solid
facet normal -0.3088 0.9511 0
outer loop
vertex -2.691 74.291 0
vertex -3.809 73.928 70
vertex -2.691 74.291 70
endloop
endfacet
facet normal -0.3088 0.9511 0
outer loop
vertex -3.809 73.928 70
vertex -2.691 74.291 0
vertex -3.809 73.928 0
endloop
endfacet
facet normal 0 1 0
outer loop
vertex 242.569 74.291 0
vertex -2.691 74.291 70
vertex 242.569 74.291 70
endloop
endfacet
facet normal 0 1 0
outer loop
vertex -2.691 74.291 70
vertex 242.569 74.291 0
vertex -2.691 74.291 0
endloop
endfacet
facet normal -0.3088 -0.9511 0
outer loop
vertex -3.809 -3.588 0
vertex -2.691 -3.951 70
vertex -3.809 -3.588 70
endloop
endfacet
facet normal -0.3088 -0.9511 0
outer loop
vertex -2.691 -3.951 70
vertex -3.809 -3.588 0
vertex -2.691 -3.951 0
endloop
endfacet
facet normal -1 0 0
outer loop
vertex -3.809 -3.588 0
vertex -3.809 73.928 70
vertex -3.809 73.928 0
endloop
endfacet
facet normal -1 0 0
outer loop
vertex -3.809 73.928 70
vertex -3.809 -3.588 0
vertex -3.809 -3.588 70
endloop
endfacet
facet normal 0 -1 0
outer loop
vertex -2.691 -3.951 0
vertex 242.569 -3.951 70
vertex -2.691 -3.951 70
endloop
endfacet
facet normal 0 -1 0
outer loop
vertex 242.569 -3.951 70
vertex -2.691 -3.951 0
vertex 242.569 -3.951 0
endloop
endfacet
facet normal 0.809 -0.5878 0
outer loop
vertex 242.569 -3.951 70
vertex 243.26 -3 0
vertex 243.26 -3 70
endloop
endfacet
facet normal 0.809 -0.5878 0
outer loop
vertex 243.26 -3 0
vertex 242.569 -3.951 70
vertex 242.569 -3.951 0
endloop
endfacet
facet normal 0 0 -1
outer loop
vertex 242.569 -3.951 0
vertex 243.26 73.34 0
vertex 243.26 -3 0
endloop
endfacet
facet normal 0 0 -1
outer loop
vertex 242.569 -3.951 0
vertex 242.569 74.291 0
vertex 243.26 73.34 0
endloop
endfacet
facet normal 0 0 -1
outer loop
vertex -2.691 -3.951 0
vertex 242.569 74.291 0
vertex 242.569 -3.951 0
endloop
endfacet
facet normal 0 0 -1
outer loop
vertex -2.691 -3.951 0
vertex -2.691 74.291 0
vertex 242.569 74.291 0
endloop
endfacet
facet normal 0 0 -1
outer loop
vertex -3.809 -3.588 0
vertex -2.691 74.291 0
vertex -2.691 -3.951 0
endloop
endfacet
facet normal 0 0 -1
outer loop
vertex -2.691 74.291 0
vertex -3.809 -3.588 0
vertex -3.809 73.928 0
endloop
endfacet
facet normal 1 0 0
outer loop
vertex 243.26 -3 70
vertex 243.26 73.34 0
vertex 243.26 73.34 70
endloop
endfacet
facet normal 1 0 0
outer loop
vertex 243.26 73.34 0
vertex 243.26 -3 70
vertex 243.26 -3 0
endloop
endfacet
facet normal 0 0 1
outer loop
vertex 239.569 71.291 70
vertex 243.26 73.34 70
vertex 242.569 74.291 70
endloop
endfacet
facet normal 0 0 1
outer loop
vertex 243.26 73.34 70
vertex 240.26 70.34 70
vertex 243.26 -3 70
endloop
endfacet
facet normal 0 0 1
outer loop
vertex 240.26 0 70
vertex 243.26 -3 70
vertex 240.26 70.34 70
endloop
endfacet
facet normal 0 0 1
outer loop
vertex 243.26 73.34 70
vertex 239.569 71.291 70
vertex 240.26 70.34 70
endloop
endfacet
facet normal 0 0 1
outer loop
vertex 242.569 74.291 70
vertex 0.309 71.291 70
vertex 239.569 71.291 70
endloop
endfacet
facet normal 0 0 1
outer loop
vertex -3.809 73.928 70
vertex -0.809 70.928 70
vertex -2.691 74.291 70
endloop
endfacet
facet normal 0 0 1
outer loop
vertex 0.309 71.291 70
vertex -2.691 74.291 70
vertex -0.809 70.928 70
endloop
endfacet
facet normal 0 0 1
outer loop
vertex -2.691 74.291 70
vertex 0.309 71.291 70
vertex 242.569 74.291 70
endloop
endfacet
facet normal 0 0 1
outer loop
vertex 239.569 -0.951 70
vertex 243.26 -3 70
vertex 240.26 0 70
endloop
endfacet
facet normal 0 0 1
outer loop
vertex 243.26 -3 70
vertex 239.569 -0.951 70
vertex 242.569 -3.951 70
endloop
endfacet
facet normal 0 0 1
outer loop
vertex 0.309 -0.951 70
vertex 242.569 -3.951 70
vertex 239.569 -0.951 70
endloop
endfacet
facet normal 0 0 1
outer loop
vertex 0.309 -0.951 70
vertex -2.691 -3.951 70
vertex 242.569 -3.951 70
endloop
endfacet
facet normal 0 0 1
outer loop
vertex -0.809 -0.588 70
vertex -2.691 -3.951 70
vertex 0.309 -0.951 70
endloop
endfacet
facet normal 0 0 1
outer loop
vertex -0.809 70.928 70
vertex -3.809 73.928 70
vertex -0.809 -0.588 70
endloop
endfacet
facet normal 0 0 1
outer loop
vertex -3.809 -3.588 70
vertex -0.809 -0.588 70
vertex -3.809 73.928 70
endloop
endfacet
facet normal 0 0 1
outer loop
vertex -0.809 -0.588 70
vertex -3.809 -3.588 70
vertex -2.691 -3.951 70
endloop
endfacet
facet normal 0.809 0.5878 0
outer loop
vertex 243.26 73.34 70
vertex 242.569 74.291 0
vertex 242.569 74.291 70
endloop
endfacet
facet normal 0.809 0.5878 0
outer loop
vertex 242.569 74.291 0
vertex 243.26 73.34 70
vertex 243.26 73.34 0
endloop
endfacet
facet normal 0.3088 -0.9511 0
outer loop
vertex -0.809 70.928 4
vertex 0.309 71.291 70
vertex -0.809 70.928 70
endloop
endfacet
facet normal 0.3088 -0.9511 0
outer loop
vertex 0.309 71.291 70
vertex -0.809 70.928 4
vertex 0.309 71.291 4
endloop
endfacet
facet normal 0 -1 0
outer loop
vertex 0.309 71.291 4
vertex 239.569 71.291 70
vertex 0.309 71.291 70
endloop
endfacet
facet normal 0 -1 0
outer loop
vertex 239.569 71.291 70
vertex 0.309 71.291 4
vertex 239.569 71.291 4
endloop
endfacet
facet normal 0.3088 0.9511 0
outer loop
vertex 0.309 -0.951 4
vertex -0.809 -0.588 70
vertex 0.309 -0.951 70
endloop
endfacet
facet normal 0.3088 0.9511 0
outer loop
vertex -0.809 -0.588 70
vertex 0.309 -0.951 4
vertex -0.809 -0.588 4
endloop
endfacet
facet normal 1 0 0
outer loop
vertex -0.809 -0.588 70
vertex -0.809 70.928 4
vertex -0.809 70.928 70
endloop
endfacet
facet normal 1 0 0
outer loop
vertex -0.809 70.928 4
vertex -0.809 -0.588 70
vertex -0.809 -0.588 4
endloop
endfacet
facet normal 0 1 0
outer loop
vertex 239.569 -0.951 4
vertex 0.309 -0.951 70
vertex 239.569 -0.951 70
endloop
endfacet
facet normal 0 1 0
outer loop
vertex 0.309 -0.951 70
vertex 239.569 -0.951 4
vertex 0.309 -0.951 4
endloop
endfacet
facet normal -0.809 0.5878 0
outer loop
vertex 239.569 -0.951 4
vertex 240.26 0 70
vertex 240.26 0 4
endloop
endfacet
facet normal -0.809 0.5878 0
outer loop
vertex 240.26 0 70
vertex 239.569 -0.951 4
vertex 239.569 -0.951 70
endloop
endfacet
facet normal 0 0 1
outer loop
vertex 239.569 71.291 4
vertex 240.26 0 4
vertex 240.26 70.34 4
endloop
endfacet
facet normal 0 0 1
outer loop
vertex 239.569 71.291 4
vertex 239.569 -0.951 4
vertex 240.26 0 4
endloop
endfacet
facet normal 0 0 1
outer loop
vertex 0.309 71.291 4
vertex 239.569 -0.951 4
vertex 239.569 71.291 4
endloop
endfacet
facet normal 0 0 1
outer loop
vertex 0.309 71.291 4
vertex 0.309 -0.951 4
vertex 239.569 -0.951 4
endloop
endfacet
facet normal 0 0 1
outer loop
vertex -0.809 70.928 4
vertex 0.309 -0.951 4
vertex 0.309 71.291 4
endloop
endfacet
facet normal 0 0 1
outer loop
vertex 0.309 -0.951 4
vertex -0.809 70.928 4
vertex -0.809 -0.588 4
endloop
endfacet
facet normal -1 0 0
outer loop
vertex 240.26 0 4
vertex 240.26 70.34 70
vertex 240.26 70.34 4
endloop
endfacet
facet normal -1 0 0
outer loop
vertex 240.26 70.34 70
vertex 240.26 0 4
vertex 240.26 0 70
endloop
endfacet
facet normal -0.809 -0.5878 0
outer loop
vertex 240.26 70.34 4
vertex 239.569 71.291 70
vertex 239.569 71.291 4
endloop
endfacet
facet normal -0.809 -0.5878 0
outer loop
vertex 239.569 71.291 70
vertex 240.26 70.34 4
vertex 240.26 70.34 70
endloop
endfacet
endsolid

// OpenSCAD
// file: ../case_template/case.scad
module case (width, length, wall_height, wall_thickness, x_offset, y_offset, z_offset){
    //Negative space
    top_right_point = [width + x_offset, length + y_offset, z_offset];
    top_left_point = [width + x_offset, y_offset, z_offset];
    bottom_right_point = [x_offset, length + y_offset, z_offset];
    bottom_left_point = [x_offset, y_offset, z_offset];

    //Base space
    top_right_point_base = [width + wall_thickness, length + wall_thickness, 0];
    top_left_point_base = [width + wall_thickness, -wall_thickness, 0];
    bottom_right_point_base = [-wall_thickness, length + wall_thickness, 0];
    bottom_left_point_base = [-wall_thickness, -wall_thickness, 0];
    
    //Lists for the for loops
    base_points = [top_right_point_base, top_left_point_base, bottom_right_point_base, bottom_left_point_base];
    points = [top_right_point, top_left_point, bottom_right_point, bottom_left_point];

    difference(){
        hull(){
            for (point = base_points){
                translate(point){
                    cylinder(wall_height);
                }
            }
        }
        hull(){
            for (point = points){
                translate(point){
                    cylinder(wall_height);
                }
            }
        }
    }
}

module roofed_case(width, length, wall_height, wall_thickness, x_offset, y_offset, z_offset, roof_thickness){
    case(width, length, wall_height, wall_thickness, x_offset, y_offset, z_offset);
    top_right_point_base = [width + wall_thickness, length + wall_thickness, wall_height];
    top_left_point_base = [width + wall_thickness, -wall_thickness, wall_height ];
    bottom_right_point_base = [-wall_thickness, length + wall_thickness, wall_height];
    bottom_left_point_base = [-wall_thickness, -wall_thickness, wall_height];
    points = [top_right_point_base, top_left_point_base, bottom_right_point_base, bottom_left_point_base];
    hull(){
           for(point = points){
               translate(point) cylinder(roof_thickness);
           }
    }
    
}

//Changeable values
width = 100;
length = 100;
wall_height = 100000;
x_offset = 0;
y_offset = 0;
z_offset = 1;
wall_thickness = 3;
roof_thickness = 3;

/*
//Non-changeable values
height = z_offset + wall_height;
*/

//This is for making sure it renders correctly
translate([0, 0, wall_height + 10]){
    case(width,
        length,
        wall_height,
        wall_thickness,
        x_offset,
        y_offset,
        z_offset);
}

roofed_case(width,
     length,
     wall_height,
     wall_thickness,
     x_offset,
     y_offset,
     z_offset);
// main file
use <../case_template/case.scad>

//Basic box
width = 239.26;
length = 70.34;
wall_height = 70;
x_offset = 0;
y_offset = 0;
z_offset = 4;
wall_thickness = 3;

case(width, length, wall_height, wall_thickness, x_offset, y_offset, z_offset);
